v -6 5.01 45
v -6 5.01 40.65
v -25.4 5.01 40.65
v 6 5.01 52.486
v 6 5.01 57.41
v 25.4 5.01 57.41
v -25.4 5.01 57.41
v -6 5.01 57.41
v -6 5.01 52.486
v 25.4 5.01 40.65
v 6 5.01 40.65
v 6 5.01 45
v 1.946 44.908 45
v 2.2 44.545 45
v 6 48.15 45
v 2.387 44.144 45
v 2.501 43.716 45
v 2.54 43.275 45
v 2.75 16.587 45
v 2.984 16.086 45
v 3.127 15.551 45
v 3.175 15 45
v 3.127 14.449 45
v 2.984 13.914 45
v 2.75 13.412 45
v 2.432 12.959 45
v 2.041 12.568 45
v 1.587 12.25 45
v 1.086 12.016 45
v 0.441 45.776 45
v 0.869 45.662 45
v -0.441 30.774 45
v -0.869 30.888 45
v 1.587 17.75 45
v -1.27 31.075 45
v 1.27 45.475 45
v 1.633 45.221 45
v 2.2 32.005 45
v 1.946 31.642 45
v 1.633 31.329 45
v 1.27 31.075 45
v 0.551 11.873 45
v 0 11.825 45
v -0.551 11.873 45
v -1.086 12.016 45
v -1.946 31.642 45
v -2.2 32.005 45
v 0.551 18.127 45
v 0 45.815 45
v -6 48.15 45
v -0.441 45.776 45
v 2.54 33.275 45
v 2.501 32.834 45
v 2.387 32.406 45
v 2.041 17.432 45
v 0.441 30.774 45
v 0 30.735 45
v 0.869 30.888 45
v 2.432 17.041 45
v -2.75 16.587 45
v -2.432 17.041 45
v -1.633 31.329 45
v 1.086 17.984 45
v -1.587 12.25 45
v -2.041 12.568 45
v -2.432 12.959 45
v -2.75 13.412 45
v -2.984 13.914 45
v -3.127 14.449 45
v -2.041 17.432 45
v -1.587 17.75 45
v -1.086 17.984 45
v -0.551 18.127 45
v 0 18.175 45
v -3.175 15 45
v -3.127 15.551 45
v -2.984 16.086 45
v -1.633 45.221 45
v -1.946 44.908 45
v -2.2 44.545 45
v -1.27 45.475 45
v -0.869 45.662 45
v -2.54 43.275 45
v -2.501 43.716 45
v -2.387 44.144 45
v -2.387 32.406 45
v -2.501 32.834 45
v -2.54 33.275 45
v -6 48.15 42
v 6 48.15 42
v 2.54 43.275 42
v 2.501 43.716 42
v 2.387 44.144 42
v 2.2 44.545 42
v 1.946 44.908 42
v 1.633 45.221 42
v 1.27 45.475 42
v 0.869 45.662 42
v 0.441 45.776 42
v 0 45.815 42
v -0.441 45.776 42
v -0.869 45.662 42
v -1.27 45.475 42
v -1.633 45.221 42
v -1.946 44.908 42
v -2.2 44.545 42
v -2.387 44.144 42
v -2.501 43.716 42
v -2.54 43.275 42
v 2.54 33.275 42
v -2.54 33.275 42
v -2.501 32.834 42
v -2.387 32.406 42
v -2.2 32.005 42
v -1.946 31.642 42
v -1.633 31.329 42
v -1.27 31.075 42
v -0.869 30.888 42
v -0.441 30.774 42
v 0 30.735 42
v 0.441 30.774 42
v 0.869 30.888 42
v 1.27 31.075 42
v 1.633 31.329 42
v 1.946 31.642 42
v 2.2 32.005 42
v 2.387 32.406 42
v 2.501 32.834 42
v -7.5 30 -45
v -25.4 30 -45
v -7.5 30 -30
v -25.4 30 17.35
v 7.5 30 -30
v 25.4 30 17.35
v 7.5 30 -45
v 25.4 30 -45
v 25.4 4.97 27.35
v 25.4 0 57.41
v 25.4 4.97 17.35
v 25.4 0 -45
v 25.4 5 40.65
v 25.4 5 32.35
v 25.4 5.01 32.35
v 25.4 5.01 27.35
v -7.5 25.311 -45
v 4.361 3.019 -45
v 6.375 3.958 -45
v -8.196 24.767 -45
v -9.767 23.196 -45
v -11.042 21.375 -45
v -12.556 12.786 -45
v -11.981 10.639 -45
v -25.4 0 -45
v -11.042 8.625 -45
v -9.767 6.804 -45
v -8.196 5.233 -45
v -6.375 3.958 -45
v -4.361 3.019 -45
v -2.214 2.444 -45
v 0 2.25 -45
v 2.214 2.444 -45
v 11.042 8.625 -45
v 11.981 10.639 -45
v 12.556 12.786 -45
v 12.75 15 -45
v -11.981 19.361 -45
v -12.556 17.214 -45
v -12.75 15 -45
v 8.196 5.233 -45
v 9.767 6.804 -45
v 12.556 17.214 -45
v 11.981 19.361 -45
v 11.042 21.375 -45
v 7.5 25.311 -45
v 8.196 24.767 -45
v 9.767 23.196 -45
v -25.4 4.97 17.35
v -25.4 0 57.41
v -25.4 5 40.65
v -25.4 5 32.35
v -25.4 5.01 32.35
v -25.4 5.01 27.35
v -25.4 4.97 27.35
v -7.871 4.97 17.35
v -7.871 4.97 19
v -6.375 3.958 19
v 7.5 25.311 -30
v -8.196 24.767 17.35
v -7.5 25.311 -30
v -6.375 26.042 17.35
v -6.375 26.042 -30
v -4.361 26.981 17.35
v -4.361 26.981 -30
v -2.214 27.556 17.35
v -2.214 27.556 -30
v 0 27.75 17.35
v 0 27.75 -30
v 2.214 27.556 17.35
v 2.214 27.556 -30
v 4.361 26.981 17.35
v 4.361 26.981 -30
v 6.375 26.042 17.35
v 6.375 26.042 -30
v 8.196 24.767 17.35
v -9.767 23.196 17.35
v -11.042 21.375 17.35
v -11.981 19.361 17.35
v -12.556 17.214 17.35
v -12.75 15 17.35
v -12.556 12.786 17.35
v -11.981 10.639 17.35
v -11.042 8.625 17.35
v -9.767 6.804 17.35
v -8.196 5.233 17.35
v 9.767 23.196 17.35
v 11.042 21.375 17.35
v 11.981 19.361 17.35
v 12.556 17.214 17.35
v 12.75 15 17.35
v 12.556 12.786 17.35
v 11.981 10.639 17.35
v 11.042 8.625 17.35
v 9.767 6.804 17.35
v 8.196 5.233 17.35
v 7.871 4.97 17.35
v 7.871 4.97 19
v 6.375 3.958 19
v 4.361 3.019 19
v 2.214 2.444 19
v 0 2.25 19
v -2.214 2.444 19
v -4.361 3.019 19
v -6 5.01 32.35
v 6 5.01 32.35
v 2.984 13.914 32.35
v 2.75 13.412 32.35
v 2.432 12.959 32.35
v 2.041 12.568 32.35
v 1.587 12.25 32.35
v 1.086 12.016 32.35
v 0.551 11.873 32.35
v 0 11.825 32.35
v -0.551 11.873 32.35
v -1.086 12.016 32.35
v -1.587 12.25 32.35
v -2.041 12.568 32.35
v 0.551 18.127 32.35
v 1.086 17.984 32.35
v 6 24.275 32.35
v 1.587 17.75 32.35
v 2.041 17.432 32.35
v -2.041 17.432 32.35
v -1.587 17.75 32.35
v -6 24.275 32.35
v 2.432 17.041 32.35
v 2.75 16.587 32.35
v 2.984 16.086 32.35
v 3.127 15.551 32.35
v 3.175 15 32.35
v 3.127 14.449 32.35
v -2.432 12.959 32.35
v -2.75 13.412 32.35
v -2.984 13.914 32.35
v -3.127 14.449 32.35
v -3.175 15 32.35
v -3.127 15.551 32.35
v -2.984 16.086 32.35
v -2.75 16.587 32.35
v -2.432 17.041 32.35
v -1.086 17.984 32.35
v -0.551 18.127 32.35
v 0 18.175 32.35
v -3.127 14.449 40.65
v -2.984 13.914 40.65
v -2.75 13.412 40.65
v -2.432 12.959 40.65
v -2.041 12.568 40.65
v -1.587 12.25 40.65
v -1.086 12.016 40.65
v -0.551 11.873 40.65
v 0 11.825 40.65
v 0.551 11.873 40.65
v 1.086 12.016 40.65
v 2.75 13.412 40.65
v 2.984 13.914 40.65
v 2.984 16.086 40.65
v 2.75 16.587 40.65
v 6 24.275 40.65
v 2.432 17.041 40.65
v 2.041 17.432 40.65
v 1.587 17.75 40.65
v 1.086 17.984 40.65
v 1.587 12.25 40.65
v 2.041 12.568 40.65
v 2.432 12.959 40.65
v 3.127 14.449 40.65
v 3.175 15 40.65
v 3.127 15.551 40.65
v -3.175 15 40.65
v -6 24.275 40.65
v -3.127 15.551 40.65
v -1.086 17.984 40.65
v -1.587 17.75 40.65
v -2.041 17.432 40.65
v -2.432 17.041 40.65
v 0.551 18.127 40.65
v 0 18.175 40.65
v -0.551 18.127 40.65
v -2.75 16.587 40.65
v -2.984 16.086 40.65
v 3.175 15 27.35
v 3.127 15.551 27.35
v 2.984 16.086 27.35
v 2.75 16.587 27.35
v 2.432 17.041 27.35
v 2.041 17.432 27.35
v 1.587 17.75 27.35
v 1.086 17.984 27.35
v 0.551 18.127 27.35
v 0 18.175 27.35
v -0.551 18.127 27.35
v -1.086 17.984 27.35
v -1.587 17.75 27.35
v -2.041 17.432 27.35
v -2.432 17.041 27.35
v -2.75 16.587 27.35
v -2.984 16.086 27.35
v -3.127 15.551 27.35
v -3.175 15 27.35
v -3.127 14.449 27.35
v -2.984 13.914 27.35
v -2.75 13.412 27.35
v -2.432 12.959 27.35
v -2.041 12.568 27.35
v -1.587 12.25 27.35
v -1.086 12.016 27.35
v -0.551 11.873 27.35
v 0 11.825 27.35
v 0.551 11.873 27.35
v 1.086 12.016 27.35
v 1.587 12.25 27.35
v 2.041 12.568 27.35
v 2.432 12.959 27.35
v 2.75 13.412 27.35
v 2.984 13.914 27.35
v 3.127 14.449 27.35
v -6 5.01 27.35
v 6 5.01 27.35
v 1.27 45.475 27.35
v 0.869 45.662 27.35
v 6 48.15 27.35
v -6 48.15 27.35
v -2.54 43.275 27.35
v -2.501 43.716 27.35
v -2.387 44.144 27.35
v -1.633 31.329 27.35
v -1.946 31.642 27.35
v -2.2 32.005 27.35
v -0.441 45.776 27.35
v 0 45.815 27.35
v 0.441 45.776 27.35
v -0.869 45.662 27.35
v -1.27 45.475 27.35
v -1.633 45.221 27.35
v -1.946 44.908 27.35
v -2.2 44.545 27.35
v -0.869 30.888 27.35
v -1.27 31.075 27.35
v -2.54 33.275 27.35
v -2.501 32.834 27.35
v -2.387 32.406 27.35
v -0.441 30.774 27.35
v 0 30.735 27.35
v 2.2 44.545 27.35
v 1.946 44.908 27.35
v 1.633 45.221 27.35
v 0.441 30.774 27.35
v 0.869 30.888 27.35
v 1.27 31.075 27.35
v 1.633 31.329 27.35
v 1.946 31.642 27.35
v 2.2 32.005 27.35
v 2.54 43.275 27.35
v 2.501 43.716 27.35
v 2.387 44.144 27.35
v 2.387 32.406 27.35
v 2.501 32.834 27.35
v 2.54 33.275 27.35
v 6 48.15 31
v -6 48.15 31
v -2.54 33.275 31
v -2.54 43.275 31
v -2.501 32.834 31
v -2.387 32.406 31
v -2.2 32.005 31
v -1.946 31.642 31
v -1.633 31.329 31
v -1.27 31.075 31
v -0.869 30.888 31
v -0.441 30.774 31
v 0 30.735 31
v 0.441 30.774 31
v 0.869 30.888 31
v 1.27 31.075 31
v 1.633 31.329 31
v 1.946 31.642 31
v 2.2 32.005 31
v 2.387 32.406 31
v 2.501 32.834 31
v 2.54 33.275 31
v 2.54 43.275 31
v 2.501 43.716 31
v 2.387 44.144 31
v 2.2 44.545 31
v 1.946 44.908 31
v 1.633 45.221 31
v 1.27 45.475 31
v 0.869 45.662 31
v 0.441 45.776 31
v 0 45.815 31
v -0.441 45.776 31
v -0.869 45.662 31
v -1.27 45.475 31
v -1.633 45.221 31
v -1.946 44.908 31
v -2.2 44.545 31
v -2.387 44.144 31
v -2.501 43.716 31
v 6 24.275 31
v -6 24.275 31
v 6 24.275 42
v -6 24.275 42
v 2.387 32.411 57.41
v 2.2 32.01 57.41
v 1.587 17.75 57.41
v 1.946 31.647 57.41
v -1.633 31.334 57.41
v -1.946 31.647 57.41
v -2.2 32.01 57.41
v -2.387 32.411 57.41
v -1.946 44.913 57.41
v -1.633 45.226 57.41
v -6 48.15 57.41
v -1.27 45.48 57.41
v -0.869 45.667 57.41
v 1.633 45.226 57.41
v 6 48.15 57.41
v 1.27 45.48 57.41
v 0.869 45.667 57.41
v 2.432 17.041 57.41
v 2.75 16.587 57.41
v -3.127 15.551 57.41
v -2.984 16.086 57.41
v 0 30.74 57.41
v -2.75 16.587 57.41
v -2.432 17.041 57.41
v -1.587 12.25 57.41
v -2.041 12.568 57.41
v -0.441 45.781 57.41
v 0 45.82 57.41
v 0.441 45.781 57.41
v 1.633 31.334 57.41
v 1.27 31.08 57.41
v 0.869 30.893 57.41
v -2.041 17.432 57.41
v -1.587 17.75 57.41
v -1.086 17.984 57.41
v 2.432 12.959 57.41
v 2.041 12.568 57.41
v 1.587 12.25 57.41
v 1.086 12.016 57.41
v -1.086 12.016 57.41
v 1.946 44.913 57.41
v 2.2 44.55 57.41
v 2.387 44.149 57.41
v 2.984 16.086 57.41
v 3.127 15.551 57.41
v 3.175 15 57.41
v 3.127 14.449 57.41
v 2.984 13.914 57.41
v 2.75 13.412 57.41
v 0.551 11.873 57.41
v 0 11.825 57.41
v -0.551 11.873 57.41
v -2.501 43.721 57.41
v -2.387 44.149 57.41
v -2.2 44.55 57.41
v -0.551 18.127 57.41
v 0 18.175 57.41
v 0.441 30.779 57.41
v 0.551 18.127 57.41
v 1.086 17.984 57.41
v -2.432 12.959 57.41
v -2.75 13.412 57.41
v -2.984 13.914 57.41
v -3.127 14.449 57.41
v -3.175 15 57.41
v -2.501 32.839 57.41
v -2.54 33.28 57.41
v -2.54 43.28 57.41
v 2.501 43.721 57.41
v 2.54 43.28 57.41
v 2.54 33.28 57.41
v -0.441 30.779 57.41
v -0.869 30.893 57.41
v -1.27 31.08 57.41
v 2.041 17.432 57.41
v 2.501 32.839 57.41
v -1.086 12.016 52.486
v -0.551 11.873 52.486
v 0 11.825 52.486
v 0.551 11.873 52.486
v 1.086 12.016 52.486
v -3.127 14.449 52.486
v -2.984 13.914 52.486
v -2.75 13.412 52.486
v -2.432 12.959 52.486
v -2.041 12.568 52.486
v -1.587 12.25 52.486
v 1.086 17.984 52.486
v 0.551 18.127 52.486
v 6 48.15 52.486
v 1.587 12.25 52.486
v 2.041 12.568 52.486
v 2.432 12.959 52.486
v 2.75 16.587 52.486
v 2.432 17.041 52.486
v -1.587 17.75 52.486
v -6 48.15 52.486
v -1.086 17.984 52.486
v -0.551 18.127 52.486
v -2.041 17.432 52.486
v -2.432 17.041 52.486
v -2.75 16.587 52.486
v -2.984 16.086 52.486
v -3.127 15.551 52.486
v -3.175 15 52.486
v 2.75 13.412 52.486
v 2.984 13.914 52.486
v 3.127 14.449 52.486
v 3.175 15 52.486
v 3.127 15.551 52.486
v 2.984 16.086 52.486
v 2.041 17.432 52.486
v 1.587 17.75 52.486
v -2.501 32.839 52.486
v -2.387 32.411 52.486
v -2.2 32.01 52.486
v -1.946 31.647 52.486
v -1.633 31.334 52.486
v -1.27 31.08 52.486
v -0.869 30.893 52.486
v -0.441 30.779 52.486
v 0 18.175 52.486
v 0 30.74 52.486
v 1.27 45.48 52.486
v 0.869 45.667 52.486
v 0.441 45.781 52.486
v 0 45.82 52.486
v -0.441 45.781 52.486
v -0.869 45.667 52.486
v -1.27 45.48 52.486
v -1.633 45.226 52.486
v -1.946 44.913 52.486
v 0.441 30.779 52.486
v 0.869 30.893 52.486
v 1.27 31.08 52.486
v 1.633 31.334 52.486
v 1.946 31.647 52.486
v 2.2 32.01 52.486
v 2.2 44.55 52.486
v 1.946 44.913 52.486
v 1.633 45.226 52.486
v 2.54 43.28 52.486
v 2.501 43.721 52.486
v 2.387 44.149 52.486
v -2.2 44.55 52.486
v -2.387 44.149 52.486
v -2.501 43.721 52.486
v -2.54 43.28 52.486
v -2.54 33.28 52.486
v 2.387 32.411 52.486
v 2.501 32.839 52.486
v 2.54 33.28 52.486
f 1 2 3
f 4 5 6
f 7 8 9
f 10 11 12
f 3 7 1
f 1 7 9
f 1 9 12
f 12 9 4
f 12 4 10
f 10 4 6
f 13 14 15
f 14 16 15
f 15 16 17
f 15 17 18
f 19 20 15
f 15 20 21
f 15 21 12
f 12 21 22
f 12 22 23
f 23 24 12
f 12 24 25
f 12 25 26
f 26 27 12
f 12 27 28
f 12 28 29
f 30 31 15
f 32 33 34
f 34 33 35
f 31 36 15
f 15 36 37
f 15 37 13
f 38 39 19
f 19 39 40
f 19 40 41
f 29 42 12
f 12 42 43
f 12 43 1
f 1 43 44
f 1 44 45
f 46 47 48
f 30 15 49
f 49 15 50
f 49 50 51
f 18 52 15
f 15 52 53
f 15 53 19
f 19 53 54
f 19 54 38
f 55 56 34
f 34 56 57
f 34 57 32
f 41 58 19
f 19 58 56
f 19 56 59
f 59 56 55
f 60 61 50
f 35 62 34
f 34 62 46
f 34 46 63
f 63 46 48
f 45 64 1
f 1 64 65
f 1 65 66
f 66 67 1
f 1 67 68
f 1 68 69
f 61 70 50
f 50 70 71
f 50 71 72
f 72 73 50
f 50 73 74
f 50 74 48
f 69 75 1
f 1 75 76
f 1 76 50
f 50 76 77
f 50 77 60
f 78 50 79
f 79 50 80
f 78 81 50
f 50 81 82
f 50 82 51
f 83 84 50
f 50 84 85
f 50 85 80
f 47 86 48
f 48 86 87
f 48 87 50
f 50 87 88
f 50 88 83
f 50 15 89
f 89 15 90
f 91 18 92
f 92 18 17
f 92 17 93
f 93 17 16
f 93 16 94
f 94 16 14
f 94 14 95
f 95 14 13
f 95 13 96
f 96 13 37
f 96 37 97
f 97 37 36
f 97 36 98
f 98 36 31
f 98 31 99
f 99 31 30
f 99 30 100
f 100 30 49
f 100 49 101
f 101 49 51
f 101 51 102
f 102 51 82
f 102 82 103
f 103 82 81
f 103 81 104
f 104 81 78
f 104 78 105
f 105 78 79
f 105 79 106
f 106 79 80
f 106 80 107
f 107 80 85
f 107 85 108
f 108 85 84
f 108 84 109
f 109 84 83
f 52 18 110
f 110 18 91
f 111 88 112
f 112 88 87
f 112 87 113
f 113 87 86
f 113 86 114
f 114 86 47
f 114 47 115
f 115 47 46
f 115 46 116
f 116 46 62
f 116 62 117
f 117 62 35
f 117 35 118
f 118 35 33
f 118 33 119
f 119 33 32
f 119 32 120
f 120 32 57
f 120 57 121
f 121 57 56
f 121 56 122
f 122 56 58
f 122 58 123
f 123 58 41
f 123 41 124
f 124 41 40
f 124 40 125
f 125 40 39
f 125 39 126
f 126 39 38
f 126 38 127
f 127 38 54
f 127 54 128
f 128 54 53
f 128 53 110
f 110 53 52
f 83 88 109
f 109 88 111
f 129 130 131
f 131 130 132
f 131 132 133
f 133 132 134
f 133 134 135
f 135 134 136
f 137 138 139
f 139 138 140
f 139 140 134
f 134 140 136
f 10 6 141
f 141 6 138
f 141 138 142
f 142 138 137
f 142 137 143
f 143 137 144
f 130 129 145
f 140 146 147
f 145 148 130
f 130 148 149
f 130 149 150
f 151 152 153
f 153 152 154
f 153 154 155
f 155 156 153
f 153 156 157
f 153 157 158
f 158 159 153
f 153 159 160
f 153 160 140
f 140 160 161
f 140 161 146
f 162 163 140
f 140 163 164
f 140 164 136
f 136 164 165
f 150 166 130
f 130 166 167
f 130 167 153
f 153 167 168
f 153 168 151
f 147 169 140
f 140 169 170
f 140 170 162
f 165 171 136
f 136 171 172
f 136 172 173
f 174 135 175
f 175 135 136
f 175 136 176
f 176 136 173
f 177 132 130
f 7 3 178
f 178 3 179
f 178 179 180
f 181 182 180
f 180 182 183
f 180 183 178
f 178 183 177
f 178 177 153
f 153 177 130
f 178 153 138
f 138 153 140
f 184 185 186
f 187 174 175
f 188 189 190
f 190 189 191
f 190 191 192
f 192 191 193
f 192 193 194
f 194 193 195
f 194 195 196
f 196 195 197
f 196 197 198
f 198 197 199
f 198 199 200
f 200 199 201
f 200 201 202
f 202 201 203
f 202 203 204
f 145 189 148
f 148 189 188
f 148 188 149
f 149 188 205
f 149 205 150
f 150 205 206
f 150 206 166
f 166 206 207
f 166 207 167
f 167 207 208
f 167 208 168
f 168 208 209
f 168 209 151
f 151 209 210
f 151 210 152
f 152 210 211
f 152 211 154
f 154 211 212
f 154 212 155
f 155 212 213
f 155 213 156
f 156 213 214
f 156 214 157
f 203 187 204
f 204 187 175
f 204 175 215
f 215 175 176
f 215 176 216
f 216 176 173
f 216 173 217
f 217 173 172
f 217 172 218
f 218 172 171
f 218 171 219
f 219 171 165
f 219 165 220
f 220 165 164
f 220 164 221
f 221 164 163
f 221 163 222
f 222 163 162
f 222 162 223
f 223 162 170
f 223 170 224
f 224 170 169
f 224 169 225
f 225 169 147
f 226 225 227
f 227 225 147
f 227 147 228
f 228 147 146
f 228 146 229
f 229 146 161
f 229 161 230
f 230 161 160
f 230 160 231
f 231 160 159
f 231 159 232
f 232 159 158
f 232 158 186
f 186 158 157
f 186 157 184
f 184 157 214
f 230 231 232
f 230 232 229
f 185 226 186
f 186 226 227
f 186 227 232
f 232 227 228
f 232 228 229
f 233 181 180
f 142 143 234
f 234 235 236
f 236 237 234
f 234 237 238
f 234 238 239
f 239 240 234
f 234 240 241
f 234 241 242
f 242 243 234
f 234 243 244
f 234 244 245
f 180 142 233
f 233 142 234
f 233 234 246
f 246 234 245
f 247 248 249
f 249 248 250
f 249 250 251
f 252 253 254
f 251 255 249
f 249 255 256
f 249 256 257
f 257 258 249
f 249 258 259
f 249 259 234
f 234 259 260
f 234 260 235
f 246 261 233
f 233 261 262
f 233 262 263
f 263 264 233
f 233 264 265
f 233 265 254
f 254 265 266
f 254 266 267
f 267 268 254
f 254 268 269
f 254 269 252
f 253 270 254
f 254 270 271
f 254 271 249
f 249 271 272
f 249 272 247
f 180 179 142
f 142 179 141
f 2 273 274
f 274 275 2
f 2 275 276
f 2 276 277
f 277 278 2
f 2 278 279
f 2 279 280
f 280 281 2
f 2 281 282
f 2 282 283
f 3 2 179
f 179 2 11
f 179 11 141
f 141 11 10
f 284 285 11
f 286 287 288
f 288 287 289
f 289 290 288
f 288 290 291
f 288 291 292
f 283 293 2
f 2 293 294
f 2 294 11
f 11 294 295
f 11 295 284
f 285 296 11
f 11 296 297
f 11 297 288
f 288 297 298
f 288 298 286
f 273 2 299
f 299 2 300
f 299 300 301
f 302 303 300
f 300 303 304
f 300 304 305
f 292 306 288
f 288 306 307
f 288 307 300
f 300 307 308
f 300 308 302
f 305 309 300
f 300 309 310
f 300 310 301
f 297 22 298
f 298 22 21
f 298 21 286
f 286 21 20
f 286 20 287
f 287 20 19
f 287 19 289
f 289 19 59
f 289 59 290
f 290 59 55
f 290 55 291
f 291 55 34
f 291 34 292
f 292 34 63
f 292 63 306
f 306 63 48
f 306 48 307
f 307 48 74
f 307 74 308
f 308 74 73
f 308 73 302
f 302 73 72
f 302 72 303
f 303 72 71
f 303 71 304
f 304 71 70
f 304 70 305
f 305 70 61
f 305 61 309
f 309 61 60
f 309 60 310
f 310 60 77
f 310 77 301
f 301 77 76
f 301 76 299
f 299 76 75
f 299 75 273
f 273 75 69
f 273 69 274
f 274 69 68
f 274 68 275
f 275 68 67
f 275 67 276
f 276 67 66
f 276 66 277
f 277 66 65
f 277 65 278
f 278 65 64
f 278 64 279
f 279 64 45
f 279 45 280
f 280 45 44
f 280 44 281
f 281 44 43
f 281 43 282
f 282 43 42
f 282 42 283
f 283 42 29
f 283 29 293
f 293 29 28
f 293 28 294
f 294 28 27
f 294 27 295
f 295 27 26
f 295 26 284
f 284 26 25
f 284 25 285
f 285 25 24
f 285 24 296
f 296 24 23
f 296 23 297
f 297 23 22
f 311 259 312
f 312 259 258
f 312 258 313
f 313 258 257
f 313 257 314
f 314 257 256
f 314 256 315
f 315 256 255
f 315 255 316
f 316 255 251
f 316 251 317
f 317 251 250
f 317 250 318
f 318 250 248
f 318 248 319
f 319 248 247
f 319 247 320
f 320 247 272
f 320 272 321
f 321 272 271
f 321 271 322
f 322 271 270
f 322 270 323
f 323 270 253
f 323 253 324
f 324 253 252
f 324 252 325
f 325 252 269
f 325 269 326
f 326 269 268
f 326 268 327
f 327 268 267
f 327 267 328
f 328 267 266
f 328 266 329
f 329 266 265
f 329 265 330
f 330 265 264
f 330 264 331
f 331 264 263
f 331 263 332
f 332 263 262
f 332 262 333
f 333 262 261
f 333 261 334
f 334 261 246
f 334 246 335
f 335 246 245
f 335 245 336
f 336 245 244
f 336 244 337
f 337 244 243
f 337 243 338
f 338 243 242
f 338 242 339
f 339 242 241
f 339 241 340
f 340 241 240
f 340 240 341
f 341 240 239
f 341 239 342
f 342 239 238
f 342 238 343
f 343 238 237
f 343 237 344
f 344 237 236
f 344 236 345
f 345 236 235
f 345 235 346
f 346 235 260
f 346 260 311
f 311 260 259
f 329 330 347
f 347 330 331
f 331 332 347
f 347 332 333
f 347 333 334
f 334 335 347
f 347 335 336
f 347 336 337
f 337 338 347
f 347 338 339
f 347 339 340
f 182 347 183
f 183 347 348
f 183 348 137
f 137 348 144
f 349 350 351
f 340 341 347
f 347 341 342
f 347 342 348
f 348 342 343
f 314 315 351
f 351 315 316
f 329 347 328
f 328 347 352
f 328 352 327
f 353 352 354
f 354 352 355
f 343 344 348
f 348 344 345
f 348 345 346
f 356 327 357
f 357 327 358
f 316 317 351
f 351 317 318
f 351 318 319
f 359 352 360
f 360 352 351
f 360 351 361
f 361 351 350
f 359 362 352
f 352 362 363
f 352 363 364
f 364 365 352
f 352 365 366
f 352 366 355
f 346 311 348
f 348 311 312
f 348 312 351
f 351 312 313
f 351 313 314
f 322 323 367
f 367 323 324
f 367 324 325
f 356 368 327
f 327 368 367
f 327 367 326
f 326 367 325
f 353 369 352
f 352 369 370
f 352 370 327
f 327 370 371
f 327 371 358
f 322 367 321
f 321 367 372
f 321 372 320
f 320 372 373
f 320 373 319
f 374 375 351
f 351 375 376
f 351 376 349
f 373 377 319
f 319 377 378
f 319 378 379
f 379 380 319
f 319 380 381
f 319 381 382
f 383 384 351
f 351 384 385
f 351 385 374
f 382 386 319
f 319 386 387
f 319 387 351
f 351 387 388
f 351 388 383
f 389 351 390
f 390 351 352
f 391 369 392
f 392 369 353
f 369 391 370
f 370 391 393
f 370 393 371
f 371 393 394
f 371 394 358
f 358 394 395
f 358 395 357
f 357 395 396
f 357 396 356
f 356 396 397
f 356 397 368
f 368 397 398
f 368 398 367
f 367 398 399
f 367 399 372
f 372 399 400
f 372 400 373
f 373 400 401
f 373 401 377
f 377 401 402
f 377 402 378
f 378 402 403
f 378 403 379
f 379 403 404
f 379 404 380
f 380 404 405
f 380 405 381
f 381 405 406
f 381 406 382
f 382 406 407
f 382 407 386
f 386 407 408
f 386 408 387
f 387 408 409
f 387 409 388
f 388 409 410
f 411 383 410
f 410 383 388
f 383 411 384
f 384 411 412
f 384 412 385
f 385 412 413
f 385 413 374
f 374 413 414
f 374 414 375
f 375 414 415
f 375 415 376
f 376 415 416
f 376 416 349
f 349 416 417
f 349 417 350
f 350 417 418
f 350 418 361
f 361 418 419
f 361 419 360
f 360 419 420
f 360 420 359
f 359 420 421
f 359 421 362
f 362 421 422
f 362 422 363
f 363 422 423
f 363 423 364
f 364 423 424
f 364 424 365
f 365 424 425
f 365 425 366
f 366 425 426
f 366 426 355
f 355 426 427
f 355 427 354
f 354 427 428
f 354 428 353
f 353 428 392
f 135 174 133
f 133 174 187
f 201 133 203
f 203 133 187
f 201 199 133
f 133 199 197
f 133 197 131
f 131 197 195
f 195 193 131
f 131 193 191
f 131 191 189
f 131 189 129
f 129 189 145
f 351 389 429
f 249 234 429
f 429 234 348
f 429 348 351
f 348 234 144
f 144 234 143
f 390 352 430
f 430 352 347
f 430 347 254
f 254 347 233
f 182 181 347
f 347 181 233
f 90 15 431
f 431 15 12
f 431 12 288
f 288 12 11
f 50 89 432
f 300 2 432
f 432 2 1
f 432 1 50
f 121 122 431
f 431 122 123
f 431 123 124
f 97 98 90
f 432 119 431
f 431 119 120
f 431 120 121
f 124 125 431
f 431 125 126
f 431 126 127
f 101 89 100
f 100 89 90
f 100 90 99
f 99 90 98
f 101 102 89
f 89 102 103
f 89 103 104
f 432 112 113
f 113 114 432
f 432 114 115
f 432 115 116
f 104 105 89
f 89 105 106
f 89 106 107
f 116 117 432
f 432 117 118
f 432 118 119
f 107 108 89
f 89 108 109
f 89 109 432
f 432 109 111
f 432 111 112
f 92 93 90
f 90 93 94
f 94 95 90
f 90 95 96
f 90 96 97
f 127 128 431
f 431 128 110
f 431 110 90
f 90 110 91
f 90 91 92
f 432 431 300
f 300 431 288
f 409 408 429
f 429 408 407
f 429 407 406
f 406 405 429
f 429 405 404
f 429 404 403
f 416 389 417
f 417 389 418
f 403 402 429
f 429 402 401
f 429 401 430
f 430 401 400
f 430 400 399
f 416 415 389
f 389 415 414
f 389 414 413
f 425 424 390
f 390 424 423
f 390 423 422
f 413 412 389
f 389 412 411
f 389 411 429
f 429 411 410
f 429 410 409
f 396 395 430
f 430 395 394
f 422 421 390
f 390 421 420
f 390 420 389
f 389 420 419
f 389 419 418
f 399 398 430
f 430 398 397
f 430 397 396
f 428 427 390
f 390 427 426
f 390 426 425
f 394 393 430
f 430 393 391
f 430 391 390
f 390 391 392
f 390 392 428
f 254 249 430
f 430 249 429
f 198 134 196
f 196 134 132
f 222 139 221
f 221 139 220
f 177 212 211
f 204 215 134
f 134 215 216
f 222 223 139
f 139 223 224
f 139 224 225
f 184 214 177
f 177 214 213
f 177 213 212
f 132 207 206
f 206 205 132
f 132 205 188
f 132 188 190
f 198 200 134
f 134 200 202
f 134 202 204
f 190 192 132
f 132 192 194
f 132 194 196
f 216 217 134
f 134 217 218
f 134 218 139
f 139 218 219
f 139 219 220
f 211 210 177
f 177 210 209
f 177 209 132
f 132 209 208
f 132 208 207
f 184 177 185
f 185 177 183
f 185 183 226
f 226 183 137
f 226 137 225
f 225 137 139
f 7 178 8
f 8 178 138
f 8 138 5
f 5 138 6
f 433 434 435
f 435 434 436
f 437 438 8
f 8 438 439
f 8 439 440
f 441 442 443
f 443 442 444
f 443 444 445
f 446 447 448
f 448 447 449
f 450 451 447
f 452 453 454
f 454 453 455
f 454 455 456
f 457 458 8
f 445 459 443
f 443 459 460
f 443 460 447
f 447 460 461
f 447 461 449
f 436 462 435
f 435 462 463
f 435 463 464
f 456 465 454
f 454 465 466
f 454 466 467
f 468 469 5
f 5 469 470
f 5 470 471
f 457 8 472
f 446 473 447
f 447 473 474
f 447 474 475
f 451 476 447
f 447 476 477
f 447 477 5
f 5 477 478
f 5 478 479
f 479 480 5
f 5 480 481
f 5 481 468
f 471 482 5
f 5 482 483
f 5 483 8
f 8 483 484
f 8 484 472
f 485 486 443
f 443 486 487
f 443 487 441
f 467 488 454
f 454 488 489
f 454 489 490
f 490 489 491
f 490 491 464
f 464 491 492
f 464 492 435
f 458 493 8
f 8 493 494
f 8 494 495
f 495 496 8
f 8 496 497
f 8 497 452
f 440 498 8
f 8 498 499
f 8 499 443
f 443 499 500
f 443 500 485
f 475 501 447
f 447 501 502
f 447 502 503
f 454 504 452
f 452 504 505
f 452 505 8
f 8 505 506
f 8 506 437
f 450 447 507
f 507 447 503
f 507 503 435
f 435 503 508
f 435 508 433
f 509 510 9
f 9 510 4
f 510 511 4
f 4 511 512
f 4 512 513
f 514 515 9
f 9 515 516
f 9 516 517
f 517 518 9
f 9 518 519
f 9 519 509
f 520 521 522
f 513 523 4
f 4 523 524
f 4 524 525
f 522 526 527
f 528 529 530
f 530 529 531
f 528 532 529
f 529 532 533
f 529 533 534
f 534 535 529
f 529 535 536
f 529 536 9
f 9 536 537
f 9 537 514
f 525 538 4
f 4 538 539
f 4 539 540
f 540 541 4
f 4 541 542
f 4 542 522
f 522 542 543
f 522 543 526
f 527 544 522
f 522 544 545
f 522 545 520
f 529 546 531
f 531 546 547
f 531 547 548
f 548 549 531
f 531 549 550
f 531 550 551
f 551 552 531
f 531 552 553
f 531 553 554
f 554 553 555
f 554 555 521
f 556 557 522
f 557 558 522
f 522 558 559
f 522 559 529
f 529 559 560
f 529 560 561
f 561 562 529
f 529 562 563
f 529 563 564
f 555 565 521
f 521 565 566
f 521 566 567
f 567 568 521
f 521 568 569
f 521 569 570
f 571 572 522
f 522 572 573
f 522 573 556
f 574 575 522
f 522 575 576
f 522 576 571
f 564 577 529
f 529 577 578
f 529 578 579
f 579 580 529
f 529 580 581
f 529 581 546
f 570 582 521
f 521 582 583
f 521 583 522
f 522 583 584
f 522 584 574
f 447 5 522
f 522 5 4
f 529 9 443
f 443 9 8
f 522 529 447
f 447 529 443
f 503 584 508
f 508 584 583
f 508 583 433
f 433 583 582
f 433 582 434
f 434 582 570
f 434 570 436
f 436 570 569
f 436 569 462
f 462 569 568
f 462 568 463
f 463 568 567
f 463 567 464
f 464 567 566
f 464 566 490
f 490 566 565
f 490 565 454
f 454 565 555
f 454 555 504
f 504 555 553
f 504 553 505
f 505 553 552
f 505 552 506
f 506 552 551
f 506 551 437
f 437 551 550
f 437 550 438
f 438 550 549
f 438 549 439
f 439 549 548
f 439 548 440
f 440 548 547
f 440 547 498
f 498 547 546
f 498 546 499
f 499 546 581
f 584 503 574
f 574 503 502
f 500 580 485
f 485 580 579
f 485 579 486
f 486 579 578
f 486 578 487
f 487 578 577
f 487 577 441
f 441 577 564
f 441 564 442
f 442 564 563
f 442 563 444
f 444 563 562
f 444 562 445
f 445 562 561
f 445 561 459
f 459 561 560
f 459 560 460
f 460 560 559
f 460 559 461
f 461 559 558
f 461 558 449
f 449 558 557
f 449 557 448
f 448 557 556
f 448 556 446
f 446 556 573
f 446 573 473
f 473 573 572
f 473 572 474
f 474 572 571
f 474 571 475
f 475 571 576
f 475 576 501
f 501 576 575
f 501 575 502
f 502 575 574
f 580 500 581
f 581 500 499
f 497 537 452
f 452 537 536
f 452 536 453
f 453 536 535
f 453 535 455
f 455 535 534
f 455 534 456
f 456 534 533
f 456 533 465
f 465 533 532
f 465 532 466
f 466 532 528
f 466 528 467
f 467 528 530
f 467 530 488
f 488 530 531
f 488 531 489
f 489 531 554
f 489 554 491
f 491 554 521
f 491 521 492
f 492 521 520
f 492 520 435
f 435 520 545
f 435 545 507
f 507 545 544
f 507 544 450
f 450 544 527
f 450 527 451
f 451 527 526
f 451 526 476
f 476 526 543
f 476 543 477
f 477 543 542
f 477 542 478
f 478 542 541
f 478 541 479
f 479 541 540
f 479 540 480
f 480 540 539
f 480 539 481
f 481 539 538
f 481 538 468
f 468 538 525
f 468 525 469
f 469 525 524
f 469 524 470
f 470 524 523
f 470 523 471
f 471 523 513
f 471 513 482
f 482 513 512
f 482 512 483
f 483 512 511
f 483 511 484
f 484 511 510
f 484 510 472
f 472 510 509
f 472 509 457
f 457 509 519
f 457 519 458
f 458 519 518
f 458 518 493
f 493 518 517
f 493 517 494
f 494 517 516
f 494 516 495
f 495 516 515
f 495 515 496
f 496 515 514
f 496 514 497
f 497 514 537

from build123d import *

# Parameters (mm, degrees)
SKETCH1_W                      = 50.8
SKETCH1_H                      = 90
MAIN_EXTRUDE_DEPTH             = 30
SKETCH2_R                      = 12.75
MOTOR_SLOT_CUT_DEPTH           = 64
SKETCH3_W                      = 8.3
SKETCH3_H                      = 25
FILLAMENT_THROUGHWAY_CUT_DEPTH = 51.8
SKETCH4_R                      = 3.175
BOTTOM_AXLE_CUT_DEPTH          = 91
SKETCH6_W                      = 50.8
SKETCH6_H                      = 4.35
SKETCH6_H_2                    = 5
TOP_FINS_EXTRUDE_DEPTH         = 18.15
TOP_AXLE_CUT_DEPTH             = 91
SKETCH8_W                      = 15
SKETCH8_H                      = 15
WIRE_HOLE_CUT_DEPTH            = 8
SKETCH9_W                      = 19.4
SKETCH9_H                      = 43.140250719
EASEOFACCESSCUT_DEPTH          = 20
SKETCH10_W                     = 25
SKETCH10_H                     = 27.637362277
BEARINGSIZECUT_DEPTH           = 5.5
SKETCH11_W                     = 10
SKETCH11_H                     = 25.030494578
RUBBER_BAND_CUT_DEPTH          = 51.8
SKETCH12_W                     = 50.8
SKETCH12_H                     = 5.009749281
BOSS_EXTRUDE1_DEPTH            = 12.41
SKETCH13_W                     = 12
SKETCH13_H                     = 4.924328521
BOSS_EXTRUDE2_DEPTH            = 43.140251
SKETCH15_R                     = 3.175
CUT_EXTRUDE1_DEPTH             = 12.41


with BuildPart() as part:
    # Sketch1 → Main Extrude (new body)
    with BuildSketch(Plane(origin=(0, 0, 0), x_dir=(1, 0, 0), z_dir=(0, 1, 0))):
        Rectangle(SKETCH1_W, SKETCH1_H)
    extrude(amount=MAIN_EXTRUDE_DEPTH)

    # Sketch2 → Motor Slot Cut (cut)
    with BuildSketch(Plane(origin=(0, 0, -45), x_dir=(-1, 0, 0), z_dir=(0, 0, -1))):
        with Locations((0, 15)):
            Circle(SKETCH2_R)
    extrude(amount=-MOTOR_SLOT_CUT_DEPTH, mode=Mode.SUBTRACT)

    # Sketch3 → Fillament Throughway cut (cut, through all)
    with BuildSketch(Plane(origin=(25.4, 0, 0), x_dir=(0, 0, -1), z_dir=(1, 0, 0))):
        with Locations((-36.5, 17.5)):
            Rectangle(SKETCH3_W, SKETCH3_H)
    extrude(amount=-FILLAMENT_THROUGHWAY_CUT_DEPTH, mode=Mode.SUBTRACT)

    # Sketch4 → Bottom Axle Cut (cut, through all)
    with BuildSketch(Plane.XY.offset(45)):
        with Locations((0, 15)):
            Circle(SKETCH4_R)
    extrude(amount=-BOTTOM_AXLE_CUT_DEPTH, mode=Mode.SUBTRACT)

    # Sketch6 → Top Fins Extrude (add)
    with BuildSketch(Plane(origin=(0, 30, 0), x_dir=(1, 0, 0), z_dir=(0, 1, 0))):
        with Locations((0, -42.825)):
            Rectangle(SKETCH6_W, SKETCH6_H)
        with Locations((0, -29.85)):
            Rectangle(SKETCH6_W, SKETCH6_H_2)
    extrude(amount=TOP_FINS_EXTRUDE_DEPTH)

    # Sketch7 → Top Axle Cut (cut, through all)
    with BuildSketch(Plane.XY.offset(45)):
        with BuildLine():
            Line((2.54, 43.275), (2.54, 33.275))
            ThreePointArc((2.54, 33.275), (0, 30.735), (-2.54, 33.275))
            Line((-2.54, 33.275), (-2.54, 43.275))
            ThreePointArc((-2.54, 43.275), (0, 45.815), (2.54, 43.275))
        make_face()
    extrude(amount=-TOP_AXLE_CUT_DEPTH, mode=Mode.SUBTRACT)

    # Sketch8 → Wire Hole Cut (cut)
    with BuildSketch(Plane(origin=(0, 30, 0), x_dir=(1, 0, 0), z_dir=(0, 1, 0))):
        with Locations((0, 37.5)):
            Rectangle(SKETCH8_W, SKETCH8_H)
    extrude(amount=-WIRE_HOLE_CUT_DEPTH, mode=Mode.SUBTRACT)

    # Sketch9 → EaseOfAccessCut (cut)
    with BuildSketch(Plane.XY.offset(45)):
        with Locations((-15.7, 26.579874641)):
            Rectangle(SKETCH9_W, SKETCH9_H)
        with Locations((15.7, 26.579874641)):
            Rectangle(SKETCH9_W, SKETCH9_H)
    extrude(amount=-EASEOFACCESSCUT_DEPTH, mode=Mode.SUBTRACT)

    # Sketch10 → BearingSizeCut (cut, symmetric)
    with BuildSketch(Plane.XY.offset(36.5)):
        with Locations((0, 38.093681139)):
            Rectangle(SKETCH10_W, SKETCH10_H)
    extrude(amount=BEARINGSIZECUT_DEPTH, both=True, mode=Mode.SUBTRACT)

    # Sketch11 → Rubber Band Cut (cut, through all)
    with BuildSketch(Plane(origin=(25.4, 0, 0), x_dir=(0, 0, -1), z_dir=(1, 0, 0))):
        with Locations((-22.35, 17.484752711)):
            Rectangle(SKETCH11_W, SKETCH11_H)
    extrude(amount=-RUBBER_BAND_CUT_DEPTH, mode=Mode.SUBTRACT)

    # Sketch12 → Boss-Extrude1 (add)
    with BuildSketch(Plane.XY.offset(45)):
        with Locations((0, 2.504874641)):
            Rectangle(SKETCH12_W, SKETCH12_H)
    extrude(amount=BOSS_EXTRUDE1_DEPTH)

    # Sketch13 → Boss-Extrude2 (add)
    with BuildSketch(Plane(origin=(0, 5.009749281, 0), x_dir=(1, 0, 0), z_dir=(0, 1, 0))):
        with Locations((0, -54.94783574)):
            Rectangle(SKETCH13_W, SKETCH13_H)
    extrude(amount=BOSS_EXTRUDE2_DEPTH)

    # Sketch15 → Cut-Extrude1 (cut)
    with BuildSketch(Plane(origin=(0, 0, 52.485671479), x_dir=(-1, 0, 0), z_dir=(0, 0, -1))):
        with Locations((0, 15)):
            Circle(SKETCH15_R)
        with BuildLine():
            Line((-2.54, 33.28), (-2.54, 43.28))
            ThreePointArc((-2.54, 43.28), (0, 45.82), (2.54, 43.28))
            Line((2.54, 43.28), (2.54, 33.28))
            ThreePointArc((2.54, 33.28), (0, 30.74), (-2.54, 33.28))
        make_face()
    extrude(amount=-CUT_EXTRUDE1_DEPTH, mode=Mode.SUBTRACT)


solid = part.part
